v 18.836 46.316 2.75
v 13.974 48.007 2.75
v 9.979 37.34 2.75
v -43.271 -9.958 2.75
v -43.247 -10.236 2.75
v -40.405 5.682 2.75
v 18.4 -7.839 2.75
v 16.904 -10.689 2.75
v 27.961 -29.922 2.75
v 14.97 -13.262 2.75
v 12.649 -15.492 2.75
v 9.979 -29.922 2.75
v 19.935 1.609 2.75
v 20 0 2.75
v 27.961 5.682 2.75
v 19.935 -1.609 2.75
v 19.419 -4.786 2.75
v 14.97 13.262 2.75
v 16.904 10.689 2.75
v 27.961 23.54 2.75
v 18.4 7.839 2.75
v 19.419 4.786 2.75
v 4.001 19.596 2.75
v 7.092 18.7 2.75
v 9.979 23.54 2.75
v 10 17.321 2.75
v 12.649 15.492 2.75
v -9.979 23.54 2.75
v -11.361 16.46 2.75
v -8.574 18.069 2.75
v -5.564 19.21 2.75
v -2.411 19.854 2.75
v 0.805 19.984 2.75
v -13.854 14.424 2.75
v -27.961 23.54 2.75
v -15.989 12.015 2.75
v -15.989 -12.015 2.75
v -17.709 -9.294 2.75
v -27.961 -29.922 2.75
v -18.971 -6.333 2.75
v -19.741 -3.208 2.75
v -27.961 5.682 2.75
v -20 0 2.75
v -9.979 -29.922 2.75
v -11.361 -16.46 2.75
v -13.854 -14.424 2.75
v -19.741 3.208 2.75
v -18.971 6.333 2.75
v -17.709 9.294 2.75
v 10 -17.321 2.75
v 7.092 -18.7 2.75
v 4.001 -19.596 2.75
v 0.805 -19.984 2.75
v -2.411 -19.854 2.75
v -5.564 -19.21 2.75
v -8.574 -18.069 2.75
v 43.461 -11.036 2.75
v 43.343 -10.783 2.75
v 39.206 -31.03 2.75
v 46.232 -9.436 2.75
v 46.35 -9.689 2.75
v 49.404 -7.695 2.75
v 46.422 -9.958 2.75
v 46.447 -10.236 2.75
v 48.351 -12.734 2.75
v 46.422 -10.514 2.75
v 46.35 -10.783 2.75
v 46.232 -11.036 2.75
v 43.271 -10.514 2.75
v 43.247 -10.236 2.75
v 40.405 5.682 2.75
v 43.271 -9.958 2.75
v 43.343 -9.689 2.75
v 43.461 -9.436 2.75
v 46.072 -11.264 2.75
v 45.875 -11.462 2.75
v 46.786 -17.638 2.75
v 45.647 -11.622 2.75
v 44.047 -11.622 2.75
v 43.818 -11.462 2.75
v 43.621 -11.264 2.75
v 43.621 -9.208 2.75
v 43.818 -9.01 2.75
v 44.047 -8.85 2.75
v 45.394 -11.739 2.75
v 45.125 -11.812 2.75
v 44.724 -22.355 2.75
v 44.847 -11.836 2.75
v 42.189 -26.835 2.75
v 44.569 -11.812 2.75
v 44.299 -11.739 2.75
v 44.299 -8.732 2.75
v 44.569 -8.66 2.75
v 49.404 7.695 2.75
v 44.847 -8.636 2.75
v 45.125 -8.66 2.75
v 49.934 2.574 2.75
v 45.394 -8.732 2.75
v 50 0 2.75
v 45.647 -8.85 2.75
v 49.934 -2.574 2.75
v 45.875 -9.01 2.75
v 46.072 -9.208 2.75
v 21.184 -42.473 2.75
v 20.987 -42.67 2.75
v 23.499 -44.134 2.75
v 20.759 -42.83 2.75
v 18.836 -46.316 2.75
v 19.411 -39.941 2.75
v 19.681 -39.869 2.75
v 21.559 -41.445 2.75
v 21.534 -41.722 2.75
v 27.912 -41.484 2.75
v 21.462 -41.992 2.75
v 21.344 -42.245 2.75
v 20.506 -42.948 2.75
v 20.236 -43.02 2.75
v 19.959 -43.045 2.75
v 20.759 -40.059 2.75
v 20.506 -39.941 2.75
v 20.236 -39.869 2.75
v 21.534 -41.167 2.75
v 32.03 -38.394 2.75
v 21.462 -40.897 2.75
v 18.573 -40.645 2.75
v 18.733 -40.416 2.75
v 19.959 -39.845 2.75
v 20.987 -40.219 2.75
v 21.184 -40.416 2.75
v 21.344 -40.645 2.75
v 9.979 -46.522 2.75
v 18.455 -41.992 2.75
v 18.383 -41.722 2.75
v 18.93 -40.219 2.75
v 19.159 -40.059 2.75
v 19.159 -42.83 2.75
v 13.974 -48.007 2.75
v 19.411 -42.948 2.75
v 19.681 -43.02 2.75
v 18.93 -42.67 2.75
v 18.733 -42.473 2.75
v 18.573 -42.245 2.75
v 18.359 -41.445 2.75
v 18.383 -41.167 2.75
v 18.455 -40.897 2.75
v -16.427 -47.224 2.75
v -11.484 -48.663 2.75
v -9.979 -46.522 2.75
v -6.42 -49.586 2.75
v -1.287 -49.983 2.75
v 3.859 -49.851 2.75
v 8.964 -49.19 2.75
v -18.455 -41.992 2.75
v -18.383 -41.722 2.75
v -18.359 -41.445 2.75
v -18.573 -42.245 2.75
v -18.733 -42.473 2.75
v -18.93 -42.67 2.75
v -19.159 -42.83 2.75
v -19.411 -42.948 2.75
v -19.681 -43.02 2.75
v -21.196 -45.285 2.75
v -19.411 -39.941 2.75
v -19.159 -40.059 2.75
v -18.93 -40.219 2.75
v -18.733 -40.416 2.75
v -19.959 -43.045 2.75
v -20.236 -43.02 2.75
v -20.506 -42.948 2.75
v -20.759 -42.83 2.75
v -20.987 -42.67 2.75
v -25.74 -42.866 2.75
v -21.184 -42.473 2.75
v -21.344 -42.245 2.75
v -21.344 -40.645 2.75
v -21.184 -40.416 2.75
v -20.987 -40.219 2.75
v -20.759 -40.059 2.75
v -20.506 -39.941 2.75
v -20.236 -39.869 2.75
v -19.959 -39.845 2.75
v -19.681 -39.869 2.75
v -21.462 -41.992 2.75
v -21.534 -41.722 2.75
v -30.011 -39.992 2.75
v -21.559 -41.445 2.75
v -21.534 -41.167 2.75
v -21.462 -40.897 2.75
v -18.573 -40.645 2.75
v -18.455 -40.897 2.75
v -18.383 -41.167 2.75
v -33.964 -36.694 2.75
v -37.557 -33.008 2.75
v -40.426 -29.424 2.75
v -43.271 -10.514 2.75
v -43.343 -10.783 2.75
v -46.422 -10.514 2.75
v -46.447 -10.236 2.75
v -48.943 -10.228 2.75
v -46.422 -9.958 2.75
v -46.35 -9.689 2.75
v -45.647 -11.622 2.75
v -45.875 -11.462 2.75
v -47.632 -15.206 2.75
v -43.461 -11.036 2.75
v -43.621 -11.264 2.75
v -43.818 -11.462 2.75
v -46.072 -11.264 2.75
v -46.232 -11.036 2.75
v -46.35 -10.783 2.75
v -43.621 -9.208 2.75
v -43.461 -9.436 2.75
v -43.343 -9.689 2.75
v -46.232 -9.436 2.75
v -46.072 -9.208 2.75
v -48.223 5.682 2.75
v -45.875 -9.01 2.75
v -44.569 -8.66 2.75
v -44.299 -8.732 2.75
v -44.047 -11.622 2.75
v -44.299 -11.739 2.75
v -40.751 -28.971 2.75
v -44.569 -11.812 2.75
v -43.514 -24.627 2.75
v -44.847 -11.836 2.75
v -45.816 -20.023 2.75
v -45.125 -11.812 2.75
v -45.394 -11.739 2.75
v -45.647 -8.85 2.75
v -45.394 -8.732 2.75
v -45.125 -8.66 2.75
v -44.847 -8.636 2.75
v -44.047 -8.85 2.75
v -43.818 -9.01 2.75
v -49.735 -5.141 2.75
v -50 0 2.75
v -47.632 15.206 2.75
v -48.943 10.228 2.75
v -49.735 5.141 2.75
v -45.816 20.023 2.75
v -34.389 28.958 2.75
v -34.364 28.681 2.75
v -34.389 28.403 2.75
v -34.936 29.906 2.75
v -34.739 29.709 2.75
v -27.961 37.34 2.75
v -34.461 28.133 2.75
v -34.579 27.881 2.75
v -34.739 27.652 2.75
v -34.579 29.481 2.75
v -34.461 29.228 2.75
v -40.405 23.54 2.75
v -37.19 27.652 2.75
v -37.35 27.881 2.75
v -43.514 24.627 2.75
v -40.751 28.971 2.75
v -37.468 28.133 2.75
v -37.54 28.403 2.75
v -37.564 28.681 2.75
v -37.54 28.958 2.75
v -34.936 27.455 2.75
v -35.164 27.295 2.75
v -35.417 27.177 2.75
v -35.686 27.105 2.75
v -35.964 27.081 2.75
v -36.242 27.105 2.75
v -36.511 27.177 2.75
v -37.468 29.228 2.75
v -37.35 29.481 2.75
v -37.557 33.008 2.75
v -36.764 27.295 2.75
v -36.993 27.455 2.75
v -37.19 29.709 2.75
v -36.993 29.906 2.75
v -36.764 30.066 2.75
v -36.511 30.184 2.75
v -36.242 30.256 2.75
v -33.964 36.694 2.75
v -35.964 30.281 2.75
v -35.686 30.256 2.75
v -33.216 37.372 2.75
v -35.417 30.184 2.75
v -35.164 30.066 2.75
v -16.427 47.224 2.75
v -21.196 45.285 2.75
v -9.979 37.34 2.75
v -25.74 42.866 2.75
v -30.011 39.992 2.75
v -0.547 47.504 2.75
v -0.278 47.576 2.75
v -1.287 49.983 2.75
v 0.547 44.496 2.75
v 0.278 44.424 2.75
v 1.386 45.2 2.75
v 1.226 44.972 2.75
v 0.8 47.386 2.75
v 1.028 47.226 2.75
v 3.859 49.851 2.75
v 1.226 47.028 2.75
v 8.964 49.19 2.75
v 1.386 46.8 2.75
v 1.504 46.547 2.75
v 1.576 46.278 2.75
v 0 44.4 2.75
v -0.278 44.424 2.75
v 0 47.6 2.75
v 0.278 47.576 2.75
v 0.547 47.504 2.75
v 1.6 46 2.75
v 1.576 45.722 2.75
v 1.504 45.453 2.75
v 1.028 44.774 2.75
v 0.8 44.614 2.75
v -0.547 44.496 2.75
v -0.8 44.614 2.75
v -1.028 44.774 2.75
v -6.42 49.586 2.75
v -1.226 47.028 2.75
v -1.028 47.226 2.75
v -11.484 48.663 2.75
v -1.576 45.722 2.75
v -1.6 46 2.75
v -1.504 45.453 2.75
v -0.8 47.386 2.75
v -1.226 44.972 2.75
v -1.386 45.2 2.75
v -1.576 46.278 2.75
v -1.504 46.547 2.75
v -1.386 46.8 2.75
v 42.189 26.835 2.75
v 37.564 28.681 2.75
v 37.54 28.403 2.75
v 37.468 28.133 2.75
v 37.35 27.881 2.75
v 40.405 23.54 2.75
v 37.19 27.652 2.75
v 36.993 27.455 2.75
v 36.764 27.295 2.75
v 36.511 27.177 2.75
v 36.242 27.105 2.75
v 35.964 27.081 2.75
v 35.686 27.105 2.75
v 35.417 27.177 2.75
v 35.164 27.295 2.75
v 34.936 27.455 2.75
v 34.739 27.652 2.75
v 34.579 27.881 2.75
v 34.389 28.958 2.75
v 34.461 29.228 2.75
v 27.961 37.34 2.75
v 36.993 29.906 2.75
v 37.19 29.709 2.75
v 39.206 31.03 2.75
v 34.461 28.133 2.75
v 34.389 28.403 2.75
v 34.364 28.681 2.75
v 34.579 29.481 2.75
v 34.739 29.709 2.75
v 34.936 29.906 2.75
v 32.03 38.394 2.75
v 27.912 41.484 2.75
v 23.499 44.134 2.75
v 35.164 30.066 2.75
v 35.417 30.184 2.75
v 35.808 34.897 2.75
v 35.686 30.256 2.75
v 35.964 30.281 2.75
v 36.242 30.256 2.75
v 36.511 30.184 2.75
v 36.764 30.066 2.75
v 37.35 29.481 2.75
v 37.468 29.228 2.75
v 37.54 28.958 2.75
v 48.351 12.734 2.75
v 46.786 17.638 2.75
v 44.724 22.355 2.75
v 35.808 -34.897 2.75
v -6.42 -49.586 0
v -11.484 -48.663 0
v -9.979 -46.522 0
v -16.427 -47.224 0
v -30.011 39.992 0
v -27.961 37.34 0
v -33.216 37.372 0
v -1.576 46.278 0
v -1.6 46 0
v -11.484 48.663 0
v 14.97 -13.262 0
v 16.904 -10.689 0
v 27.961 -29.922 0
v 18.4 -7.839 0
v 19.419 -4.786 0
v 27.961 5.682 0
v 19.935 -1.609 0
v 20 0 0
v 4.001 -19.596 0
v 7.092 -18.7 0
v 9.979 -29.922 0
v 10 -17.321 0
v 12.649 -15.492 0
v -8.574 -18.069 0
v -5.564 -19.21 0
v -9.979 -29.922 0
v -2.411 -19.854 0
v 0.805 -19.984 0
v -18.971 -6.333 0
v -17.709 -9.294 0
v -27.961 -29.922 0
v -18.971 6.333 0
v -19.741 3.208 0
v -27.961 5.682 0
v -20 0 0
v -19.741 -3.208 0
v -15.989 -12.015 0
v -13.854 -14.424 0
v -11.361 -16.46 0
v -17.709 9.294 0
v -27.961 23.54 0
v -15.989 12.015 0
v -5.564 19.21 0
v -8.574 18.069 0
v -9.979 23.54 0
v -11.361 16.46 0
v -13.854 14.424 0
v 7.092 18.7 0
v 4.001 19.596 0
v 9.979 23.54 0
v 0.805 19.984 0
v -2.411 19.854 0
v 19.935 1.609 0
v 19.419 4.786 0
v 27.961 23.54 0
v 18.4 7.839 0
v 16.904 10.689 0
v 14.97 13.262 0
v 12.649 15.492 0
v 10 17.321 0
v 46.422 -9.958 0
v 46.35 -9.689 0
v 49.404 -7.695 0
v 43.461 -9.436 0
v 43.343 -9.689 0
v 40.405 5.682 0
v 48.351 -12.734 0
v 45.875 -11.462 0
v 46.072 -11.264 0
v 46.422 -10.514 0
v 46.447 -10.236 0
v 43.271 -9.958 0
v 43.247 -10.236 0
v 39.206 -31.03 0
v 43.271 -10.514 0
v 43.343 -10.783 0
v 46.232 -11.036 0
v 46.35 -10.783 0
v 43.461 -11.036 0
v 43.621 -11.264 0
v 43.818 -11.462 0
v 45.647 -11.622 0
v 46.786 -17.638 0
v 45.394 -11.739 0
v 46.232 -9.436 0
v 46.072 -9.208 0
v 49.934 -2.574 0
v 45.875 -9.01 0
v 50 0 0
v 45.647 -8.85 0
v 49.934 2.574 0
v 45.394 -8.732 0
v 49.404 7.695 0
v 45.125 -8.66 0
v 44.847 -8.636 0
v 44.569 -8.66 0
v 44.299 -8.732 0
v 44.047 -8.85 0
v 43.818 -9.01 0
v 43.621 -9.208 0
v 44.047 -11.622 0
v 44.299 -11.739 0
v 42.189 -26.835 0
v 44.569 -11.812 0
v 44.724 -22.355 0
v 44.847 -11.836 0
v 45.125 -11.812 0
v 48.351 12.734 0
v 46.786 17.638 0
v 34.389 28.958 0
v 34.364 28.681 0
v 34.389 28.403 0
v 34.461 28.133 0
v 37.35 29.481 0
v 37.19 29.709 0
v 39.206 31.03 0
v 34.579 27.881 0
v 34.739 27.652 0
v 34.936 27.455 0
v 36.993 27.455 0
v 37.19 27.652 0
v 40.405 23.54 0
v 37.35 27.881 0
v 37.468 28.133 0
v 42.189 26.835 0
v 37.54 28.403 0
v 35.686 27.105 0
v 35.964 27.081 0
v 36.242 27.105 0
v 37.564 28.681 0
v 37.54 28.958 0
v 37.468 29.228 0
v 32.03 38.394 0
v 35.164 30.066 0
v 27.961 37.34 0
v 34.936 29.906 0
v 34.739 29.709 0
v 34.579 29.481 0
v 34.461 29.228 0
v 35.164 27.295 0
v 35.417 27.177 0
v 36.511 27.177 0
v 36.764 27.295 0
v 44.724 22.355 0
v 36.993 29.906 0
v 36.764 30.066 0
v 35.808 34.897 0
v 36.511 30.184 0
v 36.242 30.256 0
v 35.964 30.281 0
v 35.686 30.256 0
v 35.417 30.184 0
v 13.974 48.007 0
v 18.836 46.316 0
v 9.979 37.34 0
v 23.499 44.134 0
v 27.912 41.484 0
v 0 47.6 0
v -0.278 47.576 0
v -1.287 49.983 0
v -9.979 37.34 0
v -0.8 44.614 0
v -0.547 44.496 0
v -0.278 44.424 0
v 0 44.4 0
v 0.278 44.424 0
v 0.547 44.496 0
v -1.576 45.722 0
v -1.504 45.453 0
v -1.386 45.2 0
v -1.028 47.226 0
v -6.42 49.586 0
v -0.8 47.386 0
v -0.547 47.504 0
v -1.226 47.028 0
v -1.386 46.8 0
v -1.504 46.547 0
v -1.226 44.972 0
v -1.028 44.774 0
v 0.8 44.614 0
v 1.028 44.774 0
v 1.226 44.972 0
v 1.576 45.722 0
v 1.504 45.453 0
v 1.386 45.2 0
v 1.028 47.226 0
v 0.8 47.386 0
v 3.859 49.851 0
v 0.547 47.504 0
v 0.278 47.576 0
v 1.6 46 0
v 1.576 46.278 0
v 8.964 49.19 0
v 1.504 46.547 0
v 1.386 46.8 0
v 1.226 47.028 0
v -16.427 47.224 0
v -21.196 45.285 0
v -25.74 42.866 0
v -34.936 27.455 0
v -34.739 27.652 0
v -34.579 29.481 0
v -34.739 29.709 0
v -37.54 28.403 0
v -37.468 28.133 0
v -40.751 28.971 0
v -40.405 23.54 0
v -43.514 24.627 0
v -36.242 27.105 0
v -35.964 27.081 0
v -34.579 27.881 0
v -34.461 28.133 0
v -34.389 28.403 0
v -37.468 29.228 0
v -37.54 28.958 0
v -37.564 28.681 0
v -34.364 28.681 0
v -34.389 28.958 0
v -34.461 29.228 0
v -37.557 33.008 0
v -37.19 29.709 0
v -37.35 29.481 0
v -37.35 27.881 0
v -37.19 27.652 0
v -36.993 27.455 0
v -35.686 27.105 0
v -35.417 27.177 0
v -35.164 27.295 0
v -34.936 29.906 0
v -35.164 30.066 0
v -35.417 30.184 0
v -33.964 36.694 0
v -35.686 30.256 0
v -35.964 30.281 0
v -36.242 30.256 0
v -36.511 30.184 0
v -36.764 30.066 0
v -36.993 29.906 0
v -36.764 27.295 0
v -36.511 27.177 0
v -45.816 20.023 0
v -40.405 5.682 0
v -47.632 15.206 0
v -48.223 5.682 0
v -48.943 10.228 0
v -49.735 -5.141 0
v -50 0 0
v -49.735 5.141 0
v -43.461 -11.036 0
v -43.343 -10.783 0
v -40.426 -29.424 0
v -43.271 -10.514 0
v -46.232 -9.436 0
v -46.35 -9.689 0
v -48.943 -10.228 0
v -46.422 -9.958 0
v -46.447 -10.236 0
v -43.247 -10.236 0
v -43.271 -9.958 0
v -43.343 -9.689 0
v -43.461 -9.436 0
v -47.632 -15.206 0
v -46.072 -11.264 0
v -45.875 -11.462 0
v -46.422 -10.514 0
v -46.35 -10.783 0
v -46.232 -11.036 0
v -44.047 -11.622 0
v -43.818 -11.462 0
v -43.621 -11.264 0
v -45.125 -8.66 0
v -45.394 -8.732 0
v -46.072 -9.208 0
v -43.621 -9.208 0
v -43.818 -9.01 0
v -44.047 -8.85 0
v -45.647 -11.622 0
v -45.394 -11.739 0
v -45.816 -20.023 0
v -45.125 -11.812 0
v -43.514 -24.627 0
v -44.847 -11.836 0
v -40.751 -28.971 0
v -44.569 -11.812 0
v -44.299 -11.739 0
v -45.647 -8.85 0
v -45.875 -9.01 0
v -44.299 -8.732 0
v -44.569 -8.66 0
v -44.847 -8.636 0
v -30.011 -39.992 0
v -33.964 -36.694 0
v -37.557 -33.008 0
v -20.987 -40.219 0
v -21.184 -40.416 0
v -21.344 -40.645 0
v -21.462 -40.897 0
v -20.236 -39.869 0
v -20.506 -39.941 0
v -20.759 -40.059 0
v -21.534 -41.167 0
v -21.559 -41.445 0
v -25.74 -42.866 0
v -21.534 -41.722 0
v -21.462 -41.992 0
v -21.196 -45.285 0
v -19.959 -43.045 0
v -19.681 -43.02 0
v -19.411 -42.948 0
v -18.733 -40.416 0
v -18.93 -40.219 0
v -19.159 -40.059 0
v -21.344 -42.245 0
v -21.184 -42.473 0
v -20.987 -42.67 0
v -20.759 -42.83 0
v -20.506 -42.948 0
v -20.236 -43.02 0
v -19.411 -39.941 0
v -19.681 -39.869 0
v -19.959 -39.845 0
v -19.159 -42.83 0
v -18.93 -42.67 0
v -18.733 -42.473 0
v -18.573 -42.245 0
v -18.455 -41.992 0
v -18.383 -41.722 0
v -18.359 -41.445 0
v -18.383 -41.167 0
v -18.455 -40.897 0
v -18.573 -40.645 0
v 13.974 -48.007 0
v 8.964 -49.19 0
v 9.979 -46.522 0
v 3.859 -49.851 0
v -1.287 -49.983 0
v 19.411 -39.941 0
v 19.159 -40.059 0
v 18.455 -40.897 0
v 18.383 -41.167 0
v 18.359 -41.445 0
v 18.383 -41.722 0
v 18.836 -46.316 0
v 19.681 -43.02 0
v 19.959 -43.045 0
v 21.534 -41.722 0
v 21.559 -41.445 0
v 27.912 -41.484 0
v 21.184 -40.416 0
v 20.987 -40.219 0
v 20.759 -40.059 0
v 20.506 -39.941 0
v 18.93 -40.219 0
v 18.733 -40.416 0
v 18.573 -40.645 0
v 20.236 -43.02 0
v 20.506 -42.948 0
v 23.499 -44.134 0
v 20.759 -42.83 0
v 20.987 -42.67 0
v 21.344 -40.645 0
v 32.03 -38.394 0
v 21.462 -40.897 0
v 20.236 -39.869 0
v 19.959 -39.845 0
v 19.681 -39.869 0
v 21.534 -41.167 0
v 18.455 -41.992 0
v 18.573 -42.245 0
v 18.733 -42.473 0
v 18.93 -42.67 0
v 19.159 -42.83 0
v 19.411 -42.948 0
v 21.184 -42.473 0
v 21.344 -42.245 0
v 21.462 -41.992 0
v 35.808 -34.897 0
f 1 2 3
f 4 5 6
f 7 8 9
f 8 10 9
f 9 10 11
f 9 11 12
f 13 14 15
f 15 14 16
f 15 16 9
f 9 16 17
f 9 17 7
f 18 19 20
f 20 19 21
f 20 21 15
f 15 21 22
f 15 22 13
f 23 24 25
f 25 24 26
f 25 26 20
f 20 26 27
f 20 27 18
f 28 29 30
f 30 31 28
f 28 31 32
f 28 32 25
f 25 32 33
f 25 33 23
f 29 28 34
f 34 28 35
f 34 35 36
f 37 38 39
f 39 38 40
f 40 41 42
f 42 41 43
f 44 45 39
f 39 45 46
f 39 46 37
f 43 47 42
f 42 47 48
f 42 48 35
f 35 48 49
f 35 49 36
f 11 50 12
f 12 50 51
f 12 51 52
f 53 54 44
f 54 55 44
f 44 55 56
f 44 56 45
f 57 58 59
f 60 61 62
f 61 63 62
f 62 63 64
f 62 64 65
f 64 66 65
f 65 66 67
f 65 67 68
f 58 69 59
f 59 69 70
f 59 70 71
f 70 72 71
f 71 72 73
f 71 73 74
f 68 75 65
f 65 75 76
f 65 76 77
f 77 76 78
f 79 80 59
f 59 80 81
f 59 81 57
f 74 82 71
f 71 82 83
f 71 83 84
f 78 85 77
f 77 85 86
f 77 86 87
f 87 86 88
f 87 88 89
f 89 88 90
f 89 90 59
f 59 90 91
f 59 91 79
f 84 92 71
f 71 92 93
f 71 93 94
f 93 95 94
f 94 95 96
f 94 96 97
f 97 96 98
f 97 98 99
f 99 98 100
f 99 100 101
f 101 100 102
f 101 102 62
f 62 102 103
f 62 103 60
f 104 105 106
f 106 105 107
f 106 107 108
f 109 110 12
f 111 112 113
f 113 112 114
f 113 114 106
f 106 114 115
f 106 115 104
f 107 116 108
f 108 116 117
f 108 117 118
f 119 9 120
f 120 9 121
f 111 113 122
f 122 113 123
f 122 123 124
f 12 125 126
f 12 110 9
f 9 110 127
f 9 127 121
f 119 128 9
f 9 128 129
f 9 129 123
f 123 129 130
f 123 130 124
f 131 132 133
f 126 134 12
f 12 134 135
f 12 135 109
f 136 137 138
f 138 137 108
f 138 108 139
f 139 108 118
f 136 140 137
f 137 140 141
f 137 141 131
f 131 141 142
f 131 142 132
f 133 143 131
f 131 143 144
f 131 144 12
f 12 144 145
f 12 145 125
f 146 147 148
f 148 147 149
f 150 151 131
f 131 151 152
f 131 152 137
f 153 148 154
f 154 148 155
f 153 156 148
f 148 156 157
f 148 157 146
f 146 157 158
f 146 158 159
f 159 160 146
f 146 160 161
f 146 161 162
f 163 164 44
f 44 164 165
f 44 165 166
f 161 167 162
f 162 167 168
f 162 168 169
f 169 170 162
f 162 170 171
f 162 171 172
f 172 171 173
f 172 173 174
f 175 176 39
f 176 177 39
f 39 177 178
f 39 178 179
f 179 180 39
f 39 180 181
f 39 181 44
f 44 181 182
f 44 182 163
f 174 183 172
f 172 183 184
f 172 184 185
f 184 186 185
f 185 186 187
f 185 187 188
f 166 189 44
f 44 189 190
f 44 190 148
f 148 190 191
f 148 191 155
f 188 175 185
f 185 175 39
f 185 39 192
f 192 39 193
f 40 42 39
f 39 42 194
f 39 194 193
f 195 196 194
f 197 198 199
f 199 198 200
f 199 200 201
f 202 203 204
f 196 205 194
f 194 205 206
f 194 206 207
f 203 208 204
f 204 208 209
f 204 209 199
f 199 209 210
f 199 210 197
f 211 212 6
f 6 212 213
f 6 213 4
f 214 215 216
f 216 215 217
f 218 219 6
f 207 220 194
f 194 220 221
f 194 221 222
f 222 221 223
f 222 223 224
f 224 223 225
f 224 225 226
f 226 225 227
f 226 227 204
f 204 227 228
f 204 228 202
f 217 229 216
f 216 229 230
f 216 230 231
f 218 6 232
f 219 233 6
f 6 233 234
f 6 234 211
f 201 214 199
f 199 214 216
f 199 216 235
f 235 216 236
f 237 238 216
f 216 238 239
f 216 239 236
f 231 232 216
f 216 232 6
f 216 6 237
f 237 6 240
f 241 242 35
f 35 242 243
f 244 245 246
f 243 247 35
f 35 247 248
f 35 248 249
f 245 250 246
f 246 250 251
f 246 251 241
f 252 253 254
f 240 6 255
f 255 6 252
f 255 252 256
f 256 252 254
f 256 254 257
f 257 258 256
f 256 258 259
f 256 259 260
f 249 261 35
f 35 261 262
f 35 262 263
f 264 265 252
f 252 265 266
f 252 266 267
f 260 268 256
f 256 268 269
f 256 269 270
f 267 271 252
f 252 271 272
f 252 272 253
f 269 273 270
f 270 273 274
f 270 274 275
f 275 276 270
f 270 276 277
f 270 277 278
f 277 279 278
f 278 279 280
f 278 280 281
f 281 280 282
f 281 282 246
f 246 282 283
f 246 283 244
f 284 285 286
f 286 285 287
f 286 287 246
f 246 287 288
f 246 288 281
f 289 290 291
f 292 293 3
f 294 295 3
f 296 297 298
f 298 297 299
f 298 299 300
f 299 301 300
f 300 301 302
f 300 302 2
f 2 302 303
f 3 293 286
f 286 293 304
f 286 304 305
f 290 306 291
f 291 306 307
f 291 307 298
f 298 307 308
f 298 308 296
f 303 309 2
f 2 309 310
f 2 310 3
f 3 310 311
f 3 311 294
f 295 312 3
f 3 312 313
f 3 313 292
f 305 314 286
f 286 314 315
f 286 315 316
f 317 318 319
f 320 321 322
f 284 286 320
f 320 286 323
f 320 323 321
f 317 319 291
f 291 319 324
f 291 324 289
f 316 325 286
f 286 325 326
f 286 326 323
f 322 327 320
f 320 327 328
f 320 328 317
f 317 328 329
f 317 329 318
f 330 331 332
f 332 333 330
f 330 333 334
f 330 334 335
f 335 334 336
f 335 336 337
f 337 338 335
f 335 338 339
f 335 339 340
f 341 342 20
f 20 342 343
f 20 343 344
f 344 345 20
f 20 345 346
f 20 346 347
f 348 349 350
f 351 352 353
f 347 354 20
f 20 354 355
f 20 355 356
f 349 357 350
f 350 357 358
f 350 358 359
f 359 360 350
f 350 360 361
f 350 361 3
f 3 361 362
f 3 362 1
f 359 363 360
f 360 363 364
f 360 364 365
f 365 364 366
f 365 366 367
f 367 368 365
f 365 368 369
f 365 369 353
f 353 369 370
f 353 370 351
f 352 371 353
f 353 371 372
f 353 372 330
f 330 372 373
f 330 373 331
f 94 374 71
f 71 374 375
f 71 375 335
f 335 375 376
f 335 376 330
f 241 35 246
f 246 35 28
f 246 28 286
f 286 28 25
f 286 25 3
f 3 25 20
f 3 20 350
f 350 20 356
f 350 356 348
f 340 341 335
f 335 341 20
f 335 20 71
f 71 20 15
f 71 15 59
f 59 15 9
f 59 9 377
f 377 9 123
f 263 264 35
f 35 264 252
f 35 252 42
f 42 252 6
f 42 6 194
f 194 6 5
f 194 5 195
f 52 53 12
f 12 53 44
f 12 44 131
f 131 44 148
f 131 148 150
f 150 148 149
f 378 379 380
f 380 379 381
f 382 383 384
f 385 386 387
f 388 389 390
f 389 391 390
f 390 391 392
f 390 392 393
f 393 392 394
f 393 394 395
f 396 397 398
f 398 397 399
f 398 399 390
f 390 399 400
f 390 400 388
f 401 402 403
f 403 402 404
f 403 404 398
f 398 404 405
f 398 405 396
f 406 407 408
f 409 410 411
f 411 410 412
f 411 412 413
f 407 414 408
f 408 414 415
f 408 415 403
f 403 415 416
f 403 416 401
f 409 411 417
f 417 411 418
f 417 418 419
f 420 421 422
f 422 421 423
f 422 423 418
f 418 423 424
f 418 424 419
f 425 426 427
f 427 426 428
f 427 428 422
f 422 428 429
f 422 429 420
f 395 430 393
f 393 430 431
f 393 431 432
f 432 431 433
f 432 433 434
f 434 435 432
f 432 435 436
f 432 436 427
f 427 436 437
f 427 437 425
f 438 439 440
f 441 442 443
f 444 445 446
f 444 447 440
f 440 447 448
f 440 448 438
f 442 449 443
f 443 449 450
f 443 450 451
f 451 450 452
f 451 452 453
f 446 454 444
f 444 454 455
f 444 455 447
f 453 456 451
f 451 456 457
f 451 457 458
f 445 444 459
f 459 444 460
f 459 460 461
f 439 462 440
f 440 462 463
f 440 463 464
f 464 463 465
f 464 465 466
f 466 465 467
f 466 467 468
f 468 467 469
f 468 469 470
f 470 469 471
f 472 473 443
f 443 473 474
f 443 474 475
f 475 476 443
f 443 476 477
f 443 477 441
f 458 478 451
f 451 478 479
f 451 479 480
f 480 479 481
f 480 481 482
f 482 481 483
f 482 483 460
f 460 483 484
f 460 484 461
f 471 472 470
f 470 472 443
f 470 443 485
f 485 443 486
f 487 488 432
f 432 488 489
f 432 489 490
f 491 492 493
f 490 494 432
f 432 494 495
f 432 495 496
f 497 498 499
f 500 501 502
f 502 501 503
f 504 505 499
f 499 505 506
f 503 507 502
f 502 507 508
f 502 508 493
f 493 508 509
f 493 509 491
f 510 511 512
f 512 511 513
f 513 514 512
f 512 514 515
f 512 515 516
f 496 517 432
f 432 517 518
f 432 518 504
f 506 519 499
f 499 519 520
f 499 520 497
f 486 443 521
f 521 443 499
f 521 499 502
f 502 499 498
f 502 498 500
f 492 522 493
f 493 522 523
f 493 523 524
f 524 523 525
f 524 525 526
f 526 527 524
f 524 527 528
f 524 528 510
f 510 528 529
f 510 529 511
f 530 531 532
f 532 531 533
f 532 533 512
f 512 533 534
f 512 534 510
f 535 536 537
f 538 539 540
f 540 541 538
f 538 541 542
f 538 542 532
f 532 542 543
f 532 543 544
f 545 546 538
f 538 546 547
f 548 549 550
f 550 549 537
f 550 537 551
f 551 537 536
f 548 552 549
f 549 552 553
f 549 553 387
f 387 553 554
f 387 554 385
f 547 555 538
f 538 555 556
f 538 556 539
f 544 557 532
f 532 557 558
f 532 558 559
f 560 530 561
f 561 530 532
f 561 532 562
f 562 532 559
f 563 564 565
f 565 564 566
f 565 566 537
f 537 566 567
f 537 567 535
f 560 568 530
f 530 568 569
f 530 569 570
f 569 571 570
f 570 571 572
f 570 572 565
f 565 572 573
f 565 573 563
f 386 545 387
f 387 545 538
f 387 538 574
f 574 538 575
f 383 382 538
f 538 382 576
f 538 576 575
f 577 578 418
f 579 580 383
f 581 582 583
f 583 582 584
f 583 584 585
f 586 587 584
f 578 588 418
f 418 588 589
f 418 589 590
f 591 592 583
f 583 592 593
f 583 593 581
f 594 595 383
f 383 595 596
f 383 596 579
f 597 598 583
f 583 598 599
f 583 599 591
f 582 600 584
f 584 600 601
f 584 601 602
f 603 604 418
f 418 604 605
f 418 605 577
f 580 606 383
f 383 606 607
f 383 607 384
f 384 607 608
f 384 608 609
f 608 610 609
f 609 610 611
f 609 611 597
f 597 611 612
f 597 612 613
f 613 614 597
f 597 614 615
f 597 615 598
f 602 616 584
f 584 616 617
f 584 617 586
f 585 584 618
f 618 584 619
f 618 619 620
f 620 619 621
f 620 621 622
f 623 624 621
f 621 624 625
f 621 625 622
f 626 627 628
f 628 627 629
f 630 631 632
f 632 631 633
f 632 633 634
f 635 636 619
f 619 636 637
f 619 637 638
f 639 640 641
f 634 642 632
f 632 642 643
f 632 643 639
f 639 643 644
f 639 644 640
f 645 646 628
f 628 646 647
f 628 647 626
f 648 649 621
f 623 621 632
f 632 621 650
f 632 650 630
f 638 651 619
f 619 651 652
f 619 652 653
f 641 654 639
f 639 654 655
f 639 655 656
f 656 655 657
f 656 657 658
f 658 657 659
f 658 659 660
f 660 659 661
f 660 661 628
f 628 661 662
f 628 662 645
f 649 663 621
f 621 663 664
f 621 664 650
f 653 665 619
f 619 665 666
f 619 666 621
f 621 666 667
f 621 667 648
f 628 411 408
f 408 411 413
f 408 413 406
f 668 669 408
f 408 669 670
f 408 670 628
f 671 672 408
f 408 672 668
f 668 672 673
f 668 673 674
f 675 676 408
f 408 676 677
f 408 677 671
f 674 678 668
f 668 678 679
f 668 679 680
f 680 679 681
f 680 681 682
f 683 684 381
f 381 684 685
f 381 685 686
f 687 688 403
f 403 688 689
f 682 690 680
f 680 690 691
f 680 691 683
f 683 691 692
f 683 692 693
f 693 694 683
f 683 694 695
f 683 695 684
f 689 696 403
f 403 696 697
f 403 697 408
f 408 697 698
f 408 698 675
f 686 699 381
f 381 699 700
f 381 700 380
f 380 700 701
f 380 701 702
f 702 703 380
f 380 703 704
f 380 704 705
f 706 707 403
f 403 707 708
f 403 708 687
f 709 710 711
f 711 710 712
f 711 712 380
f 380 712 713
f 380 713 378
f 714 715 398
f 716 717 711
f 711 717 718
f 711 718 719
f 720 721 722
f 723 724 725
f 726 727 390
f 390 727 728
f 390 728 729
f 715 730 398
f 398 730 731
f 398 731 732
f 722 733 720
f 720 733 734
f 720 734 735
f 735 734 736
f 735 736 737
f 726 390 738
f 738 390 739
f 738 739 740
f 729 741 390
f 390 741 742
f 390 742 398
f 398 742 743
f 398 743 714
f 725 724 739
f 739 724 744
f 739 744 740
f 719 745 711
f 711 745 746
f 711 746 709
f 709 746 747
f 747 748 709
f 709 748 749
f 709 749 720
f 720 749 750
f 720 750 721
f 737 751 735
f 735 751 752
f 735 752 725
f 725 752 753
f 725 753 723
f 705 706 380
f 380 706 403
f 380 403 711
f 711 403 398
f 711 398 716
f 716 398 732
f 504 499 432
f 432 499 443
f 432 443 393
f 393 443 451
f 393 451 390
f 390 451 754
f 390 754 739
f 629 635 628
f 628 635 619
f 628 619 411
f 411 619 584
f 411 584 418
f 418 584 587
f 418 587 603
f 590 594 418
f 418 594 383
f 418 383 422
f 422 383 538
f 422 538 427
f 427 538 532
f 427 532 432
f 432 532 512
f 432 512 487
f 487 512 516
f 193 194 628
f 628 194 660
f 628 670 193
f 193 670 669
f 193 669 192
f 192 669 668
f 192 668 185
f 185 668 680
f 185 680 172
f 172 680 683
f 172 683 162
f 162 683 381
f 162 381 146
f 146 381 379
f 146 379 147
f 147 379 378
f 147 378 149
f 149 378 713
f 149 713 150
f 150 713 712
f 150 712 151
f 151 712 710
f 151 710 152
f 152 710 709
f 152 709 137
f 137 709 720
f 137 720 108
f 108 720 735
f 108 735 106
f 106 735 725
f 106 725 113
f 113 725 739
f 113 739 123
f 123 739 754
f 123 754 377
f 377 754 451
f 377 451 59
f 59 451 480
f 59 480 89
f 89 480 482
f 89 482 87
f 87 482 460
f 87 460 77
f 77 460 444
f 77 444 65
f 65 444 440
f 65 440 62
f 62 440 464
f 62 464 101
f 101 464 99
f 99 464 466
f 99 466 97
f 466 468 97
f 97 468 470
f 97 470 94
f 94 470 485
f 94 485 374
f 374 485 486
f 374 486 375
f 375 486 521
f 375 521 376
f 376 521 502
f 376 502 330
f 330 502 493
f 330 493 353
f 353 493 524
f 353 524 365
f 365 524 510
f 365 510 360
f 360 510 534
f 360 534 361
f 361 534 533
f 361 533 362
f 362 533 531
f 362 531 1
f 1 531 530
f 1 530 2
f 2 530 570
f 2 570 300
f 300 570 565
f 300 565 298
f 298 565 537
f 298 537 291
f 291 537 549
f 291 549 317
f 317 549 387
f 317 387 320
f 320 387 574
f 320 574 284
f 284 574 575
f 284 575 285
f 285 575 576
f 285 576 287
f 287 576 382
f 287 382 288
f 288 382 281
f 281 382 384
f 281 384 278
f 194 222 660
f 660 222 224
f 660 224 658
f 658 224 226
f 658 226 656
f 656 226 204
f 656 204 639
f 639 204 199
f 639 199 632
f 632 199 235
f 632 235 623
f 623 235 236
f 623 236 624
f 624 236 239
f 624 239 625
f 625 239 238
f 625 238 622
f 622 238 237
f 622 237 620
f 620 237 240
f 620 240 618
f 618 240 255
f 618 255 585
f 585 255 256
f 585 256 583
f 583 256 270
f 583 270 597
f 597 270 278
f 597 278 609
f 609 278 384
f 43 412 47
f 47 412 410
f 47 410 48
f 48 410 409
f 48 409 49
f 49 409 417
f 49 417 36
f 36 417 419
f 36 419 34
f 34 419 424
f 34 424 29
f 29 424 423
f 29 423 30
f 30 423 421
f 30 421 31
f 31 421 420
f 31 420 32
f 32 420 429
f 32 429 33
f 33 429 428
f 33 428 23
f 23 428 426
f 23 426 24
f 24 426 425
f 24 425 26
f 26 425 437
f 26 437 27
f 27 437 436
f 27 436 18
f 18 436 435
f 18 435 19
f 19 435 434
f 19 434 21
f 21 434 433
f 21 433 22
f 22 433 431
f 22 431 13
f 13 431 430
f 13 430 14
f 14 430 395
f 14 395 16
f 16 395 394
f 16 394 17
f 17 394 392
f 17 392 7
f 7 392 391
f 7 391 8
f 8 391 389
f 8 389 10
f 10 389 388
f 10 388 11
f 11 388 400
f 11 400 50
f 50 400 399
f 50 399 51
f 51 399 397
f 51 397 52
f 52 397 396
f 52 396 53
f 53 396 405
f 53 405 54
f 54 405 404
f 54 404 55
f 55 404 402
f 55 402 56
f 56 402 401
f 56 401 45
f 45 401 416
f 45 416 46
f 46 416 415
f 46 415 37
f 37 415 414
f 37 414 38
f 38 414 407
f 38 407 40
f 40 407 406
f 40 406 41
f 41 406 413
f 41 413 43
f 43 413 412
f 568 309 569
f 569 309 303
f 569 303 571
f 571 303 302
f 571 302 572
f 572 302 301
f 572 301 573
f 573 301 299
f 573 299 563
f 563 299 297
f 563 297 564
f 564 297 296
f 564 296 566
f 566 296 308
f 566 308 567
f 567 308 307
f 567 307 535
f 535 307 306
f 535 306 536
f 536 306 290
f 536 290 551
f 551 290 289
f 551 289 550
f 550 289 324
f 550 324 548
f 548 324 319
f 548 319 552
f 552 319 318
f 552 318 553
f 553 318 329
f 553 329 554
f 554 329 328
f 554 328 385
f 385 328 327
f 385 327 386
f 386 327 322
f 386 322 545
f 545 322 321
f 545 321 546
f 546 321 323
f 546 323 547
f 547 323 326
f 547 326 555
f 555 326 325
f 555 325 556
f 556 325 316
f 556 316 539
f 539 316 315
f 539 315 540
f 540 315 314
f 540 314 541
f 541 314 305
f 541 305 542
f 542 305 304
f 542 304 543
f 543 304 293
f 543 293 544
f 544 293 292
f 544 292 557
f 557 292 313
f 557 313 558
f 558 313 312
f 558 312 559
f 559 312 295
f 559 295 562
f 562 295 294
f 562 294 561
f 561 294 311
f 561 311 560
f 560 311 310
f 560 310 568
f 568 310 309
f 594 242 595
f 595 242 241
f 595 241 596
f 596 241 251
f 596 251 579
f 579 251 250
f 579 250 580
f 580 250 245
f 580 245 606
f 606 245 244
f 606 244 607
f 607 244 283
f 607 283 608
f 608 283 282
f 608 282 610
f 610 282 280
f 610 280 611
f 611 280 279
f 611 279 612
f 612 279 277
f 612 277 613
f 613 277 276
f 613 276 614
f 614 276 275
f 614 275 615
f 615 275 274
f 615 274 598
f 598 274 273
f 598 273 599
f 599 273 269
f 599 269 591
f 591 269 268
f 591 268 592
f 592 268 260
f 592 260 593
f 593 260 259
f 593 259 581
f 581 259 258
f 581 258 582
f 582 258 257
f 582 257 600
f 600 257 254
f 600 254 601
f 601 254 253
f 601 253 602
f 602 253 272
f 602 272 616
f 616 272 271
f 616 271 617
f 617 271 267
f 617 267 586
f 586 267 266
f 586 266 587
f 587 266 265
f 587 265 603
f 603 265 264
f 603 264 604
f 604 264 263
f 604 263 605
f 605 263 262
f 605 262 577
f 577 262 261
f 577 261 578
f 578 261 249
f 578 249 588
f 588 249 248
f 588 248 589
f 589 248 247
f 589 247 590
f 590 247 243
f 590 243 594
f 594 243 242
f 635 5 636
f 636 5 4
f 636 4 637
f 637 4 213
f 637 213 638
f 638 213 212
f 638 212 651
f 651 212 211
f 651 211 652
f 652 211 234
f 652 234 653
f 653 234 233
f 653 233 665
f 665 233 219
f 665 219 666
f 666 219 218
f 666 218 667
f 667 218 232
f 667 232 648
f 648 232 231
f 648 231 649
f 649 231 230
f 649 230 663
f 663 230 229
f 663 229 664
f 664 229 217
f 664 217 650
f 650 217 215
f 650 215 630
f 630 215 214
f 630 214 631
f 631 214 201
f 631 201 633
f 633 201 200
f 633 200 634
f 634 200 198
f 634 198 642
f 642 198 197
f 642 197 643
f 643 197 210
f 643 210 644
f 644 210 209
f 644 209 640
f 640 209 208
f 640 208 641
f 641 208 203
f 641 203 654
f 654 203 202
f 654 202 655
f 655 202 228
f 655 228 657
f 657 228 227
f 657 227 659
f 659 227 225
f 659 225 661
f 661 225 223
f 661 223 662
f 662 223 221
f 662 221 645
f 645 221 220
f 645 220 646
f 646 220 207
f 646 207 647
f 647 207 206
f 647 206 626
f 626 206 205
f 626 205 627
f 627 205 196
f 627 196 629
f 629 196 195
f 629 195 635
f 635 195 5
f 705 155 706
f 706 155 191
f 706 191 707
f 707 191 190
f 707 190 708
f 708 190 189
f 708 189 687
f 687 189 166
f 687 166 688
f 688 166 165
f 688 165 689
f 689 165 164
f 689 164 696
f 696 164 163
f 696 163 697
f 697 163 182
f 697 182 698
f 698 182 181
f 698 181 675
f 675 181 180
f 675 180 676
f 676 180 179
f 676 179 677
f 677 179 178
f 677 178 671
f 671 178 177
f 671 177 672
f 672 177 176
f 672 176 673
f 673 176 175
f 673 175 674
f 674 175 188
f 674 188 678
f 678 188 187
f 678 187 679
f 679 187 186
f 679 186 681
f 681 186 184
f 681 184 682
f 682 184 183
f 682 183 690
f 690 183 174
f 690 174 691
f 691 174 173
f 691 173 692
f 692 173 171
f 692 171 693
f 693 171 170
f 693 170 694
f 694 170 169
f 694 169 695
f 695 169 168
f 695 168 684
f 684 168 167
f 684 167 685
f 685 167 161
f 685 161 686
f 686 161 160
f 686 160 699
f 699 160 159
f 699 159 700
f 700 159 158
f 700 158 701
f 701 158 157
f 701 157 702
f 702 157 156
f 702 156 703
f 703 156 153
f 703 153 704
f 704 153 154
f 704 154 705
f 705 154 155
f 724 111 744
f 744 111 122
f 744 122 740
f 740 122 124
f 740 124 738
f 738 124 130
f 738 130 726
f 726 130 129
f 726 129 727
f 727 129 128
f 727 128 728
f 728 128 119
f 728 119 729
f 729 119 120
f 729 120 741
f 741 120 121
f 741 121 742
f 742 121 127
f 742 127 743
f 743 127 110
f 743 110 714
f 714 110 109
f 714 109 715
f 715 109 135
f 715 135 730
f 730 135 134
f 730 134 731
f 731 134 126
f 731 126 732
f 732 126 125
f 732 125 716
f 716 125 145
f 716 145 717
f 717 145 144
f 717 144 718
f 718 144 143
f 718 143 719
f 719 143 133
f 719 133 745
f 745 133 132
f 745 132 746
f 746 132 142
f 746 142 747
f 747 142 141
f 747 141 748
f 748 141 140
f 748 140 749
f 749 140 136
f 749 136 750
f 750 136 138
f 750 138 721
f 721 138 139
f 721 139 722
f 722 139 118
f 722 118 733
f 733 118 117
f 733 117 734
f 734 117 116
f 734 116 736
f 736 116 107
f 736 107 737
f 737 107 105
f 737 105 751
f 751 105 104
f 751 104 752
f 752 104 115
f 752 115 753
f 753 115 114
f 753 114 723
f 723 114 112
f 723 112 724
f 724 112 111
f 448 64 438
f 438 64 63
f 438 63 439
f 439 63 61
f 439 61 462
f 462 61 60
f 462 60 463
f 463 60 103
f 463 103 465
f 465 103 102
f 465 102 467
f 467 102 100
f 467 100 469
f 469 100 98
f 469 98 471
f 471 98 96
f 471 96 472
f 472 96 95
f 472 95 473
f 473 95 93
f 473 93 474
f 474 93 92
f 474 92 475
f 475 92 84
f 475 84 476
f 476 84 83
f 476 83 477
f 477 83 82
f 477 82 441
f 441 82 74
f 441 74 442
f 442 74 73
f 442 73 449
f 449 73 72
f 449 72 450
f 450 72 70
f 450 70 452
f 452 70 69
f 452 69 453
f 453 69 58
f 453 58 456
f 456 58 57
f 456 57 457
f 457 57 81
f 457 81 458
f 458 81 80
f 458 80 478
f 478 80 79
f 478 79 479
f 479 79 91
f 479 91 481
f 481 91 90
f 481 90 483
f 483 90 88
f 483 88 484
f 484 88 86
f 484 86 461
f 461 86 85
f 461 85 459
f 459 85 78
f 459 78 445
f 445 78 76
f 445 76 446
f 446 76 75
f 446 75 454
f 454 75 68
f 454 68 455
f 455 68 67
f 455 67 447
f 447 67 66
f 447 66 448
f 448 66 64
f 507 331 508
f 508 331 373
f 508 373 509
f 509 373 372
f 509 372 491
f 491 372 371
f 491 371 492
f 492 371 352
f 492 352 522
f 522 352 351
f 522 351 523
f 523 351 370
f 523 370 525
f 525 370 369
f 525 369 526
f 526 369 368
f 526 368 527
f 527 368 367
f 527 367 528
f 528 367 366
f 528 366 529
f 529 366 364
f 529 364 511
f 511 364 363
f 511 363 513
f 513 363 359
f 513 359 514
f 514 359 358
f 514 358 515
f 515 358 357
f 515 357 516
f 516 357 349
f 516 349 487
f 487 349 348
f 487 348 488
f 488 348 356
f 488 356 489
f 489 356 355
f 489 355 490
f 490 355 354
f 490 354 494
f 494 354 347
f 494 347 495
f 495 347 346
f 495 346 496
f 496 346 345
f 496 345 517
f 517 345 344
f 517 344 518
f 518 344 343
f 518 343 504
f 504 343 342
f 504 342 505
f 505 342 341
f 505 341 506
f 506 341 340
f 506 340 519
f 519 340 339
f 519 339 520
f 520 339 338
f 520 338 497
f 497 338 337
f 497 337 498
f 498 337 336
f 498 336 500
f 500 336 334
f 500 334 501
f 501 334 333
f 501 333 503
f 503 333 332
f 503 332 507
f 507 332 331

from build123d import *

# Parameters (mm, degrees)
SKIZZE1_R                        = 50
SKIZZE1_R_2                      = 20
AUFSATZ_LINEAR_AUSTRAGEN1_DEPTH  = 2.75
F_3_2_3_2_DURCHMESSER_BOHRUNG1_D = 3.2
KREISMUSTER1_COUNT               = 7


with BuildPart() as part:
    # Skizze1 → Aufsatz-Linear austragen1 (new body)
    with BuildSketch(Plane.XY):
        Circle(SKIZZE1_R)
        Circle(SKIZZE1_R_2, mode=Mode.SUBTRACT)
    extrude(amount=AUFSATZ_LINEAR_AUSTRAGEN1_DEPTH)

    # Ø3.2 (3.2) Durchmesser Bohrung1 (through all)
    with Locations(Plane.XY.offset(2.75)):
        with Locations((0, 46)):
            f_3_2_3_2_durchmesser_bohrung1 = Hole(F_3_2_3_2_DURCHMESSER_BOHRUNG1_D / 2)

    # Kreismuster1: Ø3.2 (3.2) Durchmesser Bohrung1 ×7 about axis
    kreismuster1_axis = Axis((0, 0, 0), (0, 0, 1))
    for i in range(1, KREISMUSTER1_COUNT):
        add(f_3_2_3_2_durchmesser_bohrung1.rotate(kreismuster1_axis, i * 360 / KREISMUSTER1_COUNT), mode=Mode.SUBTRACT)


solid = part.part
